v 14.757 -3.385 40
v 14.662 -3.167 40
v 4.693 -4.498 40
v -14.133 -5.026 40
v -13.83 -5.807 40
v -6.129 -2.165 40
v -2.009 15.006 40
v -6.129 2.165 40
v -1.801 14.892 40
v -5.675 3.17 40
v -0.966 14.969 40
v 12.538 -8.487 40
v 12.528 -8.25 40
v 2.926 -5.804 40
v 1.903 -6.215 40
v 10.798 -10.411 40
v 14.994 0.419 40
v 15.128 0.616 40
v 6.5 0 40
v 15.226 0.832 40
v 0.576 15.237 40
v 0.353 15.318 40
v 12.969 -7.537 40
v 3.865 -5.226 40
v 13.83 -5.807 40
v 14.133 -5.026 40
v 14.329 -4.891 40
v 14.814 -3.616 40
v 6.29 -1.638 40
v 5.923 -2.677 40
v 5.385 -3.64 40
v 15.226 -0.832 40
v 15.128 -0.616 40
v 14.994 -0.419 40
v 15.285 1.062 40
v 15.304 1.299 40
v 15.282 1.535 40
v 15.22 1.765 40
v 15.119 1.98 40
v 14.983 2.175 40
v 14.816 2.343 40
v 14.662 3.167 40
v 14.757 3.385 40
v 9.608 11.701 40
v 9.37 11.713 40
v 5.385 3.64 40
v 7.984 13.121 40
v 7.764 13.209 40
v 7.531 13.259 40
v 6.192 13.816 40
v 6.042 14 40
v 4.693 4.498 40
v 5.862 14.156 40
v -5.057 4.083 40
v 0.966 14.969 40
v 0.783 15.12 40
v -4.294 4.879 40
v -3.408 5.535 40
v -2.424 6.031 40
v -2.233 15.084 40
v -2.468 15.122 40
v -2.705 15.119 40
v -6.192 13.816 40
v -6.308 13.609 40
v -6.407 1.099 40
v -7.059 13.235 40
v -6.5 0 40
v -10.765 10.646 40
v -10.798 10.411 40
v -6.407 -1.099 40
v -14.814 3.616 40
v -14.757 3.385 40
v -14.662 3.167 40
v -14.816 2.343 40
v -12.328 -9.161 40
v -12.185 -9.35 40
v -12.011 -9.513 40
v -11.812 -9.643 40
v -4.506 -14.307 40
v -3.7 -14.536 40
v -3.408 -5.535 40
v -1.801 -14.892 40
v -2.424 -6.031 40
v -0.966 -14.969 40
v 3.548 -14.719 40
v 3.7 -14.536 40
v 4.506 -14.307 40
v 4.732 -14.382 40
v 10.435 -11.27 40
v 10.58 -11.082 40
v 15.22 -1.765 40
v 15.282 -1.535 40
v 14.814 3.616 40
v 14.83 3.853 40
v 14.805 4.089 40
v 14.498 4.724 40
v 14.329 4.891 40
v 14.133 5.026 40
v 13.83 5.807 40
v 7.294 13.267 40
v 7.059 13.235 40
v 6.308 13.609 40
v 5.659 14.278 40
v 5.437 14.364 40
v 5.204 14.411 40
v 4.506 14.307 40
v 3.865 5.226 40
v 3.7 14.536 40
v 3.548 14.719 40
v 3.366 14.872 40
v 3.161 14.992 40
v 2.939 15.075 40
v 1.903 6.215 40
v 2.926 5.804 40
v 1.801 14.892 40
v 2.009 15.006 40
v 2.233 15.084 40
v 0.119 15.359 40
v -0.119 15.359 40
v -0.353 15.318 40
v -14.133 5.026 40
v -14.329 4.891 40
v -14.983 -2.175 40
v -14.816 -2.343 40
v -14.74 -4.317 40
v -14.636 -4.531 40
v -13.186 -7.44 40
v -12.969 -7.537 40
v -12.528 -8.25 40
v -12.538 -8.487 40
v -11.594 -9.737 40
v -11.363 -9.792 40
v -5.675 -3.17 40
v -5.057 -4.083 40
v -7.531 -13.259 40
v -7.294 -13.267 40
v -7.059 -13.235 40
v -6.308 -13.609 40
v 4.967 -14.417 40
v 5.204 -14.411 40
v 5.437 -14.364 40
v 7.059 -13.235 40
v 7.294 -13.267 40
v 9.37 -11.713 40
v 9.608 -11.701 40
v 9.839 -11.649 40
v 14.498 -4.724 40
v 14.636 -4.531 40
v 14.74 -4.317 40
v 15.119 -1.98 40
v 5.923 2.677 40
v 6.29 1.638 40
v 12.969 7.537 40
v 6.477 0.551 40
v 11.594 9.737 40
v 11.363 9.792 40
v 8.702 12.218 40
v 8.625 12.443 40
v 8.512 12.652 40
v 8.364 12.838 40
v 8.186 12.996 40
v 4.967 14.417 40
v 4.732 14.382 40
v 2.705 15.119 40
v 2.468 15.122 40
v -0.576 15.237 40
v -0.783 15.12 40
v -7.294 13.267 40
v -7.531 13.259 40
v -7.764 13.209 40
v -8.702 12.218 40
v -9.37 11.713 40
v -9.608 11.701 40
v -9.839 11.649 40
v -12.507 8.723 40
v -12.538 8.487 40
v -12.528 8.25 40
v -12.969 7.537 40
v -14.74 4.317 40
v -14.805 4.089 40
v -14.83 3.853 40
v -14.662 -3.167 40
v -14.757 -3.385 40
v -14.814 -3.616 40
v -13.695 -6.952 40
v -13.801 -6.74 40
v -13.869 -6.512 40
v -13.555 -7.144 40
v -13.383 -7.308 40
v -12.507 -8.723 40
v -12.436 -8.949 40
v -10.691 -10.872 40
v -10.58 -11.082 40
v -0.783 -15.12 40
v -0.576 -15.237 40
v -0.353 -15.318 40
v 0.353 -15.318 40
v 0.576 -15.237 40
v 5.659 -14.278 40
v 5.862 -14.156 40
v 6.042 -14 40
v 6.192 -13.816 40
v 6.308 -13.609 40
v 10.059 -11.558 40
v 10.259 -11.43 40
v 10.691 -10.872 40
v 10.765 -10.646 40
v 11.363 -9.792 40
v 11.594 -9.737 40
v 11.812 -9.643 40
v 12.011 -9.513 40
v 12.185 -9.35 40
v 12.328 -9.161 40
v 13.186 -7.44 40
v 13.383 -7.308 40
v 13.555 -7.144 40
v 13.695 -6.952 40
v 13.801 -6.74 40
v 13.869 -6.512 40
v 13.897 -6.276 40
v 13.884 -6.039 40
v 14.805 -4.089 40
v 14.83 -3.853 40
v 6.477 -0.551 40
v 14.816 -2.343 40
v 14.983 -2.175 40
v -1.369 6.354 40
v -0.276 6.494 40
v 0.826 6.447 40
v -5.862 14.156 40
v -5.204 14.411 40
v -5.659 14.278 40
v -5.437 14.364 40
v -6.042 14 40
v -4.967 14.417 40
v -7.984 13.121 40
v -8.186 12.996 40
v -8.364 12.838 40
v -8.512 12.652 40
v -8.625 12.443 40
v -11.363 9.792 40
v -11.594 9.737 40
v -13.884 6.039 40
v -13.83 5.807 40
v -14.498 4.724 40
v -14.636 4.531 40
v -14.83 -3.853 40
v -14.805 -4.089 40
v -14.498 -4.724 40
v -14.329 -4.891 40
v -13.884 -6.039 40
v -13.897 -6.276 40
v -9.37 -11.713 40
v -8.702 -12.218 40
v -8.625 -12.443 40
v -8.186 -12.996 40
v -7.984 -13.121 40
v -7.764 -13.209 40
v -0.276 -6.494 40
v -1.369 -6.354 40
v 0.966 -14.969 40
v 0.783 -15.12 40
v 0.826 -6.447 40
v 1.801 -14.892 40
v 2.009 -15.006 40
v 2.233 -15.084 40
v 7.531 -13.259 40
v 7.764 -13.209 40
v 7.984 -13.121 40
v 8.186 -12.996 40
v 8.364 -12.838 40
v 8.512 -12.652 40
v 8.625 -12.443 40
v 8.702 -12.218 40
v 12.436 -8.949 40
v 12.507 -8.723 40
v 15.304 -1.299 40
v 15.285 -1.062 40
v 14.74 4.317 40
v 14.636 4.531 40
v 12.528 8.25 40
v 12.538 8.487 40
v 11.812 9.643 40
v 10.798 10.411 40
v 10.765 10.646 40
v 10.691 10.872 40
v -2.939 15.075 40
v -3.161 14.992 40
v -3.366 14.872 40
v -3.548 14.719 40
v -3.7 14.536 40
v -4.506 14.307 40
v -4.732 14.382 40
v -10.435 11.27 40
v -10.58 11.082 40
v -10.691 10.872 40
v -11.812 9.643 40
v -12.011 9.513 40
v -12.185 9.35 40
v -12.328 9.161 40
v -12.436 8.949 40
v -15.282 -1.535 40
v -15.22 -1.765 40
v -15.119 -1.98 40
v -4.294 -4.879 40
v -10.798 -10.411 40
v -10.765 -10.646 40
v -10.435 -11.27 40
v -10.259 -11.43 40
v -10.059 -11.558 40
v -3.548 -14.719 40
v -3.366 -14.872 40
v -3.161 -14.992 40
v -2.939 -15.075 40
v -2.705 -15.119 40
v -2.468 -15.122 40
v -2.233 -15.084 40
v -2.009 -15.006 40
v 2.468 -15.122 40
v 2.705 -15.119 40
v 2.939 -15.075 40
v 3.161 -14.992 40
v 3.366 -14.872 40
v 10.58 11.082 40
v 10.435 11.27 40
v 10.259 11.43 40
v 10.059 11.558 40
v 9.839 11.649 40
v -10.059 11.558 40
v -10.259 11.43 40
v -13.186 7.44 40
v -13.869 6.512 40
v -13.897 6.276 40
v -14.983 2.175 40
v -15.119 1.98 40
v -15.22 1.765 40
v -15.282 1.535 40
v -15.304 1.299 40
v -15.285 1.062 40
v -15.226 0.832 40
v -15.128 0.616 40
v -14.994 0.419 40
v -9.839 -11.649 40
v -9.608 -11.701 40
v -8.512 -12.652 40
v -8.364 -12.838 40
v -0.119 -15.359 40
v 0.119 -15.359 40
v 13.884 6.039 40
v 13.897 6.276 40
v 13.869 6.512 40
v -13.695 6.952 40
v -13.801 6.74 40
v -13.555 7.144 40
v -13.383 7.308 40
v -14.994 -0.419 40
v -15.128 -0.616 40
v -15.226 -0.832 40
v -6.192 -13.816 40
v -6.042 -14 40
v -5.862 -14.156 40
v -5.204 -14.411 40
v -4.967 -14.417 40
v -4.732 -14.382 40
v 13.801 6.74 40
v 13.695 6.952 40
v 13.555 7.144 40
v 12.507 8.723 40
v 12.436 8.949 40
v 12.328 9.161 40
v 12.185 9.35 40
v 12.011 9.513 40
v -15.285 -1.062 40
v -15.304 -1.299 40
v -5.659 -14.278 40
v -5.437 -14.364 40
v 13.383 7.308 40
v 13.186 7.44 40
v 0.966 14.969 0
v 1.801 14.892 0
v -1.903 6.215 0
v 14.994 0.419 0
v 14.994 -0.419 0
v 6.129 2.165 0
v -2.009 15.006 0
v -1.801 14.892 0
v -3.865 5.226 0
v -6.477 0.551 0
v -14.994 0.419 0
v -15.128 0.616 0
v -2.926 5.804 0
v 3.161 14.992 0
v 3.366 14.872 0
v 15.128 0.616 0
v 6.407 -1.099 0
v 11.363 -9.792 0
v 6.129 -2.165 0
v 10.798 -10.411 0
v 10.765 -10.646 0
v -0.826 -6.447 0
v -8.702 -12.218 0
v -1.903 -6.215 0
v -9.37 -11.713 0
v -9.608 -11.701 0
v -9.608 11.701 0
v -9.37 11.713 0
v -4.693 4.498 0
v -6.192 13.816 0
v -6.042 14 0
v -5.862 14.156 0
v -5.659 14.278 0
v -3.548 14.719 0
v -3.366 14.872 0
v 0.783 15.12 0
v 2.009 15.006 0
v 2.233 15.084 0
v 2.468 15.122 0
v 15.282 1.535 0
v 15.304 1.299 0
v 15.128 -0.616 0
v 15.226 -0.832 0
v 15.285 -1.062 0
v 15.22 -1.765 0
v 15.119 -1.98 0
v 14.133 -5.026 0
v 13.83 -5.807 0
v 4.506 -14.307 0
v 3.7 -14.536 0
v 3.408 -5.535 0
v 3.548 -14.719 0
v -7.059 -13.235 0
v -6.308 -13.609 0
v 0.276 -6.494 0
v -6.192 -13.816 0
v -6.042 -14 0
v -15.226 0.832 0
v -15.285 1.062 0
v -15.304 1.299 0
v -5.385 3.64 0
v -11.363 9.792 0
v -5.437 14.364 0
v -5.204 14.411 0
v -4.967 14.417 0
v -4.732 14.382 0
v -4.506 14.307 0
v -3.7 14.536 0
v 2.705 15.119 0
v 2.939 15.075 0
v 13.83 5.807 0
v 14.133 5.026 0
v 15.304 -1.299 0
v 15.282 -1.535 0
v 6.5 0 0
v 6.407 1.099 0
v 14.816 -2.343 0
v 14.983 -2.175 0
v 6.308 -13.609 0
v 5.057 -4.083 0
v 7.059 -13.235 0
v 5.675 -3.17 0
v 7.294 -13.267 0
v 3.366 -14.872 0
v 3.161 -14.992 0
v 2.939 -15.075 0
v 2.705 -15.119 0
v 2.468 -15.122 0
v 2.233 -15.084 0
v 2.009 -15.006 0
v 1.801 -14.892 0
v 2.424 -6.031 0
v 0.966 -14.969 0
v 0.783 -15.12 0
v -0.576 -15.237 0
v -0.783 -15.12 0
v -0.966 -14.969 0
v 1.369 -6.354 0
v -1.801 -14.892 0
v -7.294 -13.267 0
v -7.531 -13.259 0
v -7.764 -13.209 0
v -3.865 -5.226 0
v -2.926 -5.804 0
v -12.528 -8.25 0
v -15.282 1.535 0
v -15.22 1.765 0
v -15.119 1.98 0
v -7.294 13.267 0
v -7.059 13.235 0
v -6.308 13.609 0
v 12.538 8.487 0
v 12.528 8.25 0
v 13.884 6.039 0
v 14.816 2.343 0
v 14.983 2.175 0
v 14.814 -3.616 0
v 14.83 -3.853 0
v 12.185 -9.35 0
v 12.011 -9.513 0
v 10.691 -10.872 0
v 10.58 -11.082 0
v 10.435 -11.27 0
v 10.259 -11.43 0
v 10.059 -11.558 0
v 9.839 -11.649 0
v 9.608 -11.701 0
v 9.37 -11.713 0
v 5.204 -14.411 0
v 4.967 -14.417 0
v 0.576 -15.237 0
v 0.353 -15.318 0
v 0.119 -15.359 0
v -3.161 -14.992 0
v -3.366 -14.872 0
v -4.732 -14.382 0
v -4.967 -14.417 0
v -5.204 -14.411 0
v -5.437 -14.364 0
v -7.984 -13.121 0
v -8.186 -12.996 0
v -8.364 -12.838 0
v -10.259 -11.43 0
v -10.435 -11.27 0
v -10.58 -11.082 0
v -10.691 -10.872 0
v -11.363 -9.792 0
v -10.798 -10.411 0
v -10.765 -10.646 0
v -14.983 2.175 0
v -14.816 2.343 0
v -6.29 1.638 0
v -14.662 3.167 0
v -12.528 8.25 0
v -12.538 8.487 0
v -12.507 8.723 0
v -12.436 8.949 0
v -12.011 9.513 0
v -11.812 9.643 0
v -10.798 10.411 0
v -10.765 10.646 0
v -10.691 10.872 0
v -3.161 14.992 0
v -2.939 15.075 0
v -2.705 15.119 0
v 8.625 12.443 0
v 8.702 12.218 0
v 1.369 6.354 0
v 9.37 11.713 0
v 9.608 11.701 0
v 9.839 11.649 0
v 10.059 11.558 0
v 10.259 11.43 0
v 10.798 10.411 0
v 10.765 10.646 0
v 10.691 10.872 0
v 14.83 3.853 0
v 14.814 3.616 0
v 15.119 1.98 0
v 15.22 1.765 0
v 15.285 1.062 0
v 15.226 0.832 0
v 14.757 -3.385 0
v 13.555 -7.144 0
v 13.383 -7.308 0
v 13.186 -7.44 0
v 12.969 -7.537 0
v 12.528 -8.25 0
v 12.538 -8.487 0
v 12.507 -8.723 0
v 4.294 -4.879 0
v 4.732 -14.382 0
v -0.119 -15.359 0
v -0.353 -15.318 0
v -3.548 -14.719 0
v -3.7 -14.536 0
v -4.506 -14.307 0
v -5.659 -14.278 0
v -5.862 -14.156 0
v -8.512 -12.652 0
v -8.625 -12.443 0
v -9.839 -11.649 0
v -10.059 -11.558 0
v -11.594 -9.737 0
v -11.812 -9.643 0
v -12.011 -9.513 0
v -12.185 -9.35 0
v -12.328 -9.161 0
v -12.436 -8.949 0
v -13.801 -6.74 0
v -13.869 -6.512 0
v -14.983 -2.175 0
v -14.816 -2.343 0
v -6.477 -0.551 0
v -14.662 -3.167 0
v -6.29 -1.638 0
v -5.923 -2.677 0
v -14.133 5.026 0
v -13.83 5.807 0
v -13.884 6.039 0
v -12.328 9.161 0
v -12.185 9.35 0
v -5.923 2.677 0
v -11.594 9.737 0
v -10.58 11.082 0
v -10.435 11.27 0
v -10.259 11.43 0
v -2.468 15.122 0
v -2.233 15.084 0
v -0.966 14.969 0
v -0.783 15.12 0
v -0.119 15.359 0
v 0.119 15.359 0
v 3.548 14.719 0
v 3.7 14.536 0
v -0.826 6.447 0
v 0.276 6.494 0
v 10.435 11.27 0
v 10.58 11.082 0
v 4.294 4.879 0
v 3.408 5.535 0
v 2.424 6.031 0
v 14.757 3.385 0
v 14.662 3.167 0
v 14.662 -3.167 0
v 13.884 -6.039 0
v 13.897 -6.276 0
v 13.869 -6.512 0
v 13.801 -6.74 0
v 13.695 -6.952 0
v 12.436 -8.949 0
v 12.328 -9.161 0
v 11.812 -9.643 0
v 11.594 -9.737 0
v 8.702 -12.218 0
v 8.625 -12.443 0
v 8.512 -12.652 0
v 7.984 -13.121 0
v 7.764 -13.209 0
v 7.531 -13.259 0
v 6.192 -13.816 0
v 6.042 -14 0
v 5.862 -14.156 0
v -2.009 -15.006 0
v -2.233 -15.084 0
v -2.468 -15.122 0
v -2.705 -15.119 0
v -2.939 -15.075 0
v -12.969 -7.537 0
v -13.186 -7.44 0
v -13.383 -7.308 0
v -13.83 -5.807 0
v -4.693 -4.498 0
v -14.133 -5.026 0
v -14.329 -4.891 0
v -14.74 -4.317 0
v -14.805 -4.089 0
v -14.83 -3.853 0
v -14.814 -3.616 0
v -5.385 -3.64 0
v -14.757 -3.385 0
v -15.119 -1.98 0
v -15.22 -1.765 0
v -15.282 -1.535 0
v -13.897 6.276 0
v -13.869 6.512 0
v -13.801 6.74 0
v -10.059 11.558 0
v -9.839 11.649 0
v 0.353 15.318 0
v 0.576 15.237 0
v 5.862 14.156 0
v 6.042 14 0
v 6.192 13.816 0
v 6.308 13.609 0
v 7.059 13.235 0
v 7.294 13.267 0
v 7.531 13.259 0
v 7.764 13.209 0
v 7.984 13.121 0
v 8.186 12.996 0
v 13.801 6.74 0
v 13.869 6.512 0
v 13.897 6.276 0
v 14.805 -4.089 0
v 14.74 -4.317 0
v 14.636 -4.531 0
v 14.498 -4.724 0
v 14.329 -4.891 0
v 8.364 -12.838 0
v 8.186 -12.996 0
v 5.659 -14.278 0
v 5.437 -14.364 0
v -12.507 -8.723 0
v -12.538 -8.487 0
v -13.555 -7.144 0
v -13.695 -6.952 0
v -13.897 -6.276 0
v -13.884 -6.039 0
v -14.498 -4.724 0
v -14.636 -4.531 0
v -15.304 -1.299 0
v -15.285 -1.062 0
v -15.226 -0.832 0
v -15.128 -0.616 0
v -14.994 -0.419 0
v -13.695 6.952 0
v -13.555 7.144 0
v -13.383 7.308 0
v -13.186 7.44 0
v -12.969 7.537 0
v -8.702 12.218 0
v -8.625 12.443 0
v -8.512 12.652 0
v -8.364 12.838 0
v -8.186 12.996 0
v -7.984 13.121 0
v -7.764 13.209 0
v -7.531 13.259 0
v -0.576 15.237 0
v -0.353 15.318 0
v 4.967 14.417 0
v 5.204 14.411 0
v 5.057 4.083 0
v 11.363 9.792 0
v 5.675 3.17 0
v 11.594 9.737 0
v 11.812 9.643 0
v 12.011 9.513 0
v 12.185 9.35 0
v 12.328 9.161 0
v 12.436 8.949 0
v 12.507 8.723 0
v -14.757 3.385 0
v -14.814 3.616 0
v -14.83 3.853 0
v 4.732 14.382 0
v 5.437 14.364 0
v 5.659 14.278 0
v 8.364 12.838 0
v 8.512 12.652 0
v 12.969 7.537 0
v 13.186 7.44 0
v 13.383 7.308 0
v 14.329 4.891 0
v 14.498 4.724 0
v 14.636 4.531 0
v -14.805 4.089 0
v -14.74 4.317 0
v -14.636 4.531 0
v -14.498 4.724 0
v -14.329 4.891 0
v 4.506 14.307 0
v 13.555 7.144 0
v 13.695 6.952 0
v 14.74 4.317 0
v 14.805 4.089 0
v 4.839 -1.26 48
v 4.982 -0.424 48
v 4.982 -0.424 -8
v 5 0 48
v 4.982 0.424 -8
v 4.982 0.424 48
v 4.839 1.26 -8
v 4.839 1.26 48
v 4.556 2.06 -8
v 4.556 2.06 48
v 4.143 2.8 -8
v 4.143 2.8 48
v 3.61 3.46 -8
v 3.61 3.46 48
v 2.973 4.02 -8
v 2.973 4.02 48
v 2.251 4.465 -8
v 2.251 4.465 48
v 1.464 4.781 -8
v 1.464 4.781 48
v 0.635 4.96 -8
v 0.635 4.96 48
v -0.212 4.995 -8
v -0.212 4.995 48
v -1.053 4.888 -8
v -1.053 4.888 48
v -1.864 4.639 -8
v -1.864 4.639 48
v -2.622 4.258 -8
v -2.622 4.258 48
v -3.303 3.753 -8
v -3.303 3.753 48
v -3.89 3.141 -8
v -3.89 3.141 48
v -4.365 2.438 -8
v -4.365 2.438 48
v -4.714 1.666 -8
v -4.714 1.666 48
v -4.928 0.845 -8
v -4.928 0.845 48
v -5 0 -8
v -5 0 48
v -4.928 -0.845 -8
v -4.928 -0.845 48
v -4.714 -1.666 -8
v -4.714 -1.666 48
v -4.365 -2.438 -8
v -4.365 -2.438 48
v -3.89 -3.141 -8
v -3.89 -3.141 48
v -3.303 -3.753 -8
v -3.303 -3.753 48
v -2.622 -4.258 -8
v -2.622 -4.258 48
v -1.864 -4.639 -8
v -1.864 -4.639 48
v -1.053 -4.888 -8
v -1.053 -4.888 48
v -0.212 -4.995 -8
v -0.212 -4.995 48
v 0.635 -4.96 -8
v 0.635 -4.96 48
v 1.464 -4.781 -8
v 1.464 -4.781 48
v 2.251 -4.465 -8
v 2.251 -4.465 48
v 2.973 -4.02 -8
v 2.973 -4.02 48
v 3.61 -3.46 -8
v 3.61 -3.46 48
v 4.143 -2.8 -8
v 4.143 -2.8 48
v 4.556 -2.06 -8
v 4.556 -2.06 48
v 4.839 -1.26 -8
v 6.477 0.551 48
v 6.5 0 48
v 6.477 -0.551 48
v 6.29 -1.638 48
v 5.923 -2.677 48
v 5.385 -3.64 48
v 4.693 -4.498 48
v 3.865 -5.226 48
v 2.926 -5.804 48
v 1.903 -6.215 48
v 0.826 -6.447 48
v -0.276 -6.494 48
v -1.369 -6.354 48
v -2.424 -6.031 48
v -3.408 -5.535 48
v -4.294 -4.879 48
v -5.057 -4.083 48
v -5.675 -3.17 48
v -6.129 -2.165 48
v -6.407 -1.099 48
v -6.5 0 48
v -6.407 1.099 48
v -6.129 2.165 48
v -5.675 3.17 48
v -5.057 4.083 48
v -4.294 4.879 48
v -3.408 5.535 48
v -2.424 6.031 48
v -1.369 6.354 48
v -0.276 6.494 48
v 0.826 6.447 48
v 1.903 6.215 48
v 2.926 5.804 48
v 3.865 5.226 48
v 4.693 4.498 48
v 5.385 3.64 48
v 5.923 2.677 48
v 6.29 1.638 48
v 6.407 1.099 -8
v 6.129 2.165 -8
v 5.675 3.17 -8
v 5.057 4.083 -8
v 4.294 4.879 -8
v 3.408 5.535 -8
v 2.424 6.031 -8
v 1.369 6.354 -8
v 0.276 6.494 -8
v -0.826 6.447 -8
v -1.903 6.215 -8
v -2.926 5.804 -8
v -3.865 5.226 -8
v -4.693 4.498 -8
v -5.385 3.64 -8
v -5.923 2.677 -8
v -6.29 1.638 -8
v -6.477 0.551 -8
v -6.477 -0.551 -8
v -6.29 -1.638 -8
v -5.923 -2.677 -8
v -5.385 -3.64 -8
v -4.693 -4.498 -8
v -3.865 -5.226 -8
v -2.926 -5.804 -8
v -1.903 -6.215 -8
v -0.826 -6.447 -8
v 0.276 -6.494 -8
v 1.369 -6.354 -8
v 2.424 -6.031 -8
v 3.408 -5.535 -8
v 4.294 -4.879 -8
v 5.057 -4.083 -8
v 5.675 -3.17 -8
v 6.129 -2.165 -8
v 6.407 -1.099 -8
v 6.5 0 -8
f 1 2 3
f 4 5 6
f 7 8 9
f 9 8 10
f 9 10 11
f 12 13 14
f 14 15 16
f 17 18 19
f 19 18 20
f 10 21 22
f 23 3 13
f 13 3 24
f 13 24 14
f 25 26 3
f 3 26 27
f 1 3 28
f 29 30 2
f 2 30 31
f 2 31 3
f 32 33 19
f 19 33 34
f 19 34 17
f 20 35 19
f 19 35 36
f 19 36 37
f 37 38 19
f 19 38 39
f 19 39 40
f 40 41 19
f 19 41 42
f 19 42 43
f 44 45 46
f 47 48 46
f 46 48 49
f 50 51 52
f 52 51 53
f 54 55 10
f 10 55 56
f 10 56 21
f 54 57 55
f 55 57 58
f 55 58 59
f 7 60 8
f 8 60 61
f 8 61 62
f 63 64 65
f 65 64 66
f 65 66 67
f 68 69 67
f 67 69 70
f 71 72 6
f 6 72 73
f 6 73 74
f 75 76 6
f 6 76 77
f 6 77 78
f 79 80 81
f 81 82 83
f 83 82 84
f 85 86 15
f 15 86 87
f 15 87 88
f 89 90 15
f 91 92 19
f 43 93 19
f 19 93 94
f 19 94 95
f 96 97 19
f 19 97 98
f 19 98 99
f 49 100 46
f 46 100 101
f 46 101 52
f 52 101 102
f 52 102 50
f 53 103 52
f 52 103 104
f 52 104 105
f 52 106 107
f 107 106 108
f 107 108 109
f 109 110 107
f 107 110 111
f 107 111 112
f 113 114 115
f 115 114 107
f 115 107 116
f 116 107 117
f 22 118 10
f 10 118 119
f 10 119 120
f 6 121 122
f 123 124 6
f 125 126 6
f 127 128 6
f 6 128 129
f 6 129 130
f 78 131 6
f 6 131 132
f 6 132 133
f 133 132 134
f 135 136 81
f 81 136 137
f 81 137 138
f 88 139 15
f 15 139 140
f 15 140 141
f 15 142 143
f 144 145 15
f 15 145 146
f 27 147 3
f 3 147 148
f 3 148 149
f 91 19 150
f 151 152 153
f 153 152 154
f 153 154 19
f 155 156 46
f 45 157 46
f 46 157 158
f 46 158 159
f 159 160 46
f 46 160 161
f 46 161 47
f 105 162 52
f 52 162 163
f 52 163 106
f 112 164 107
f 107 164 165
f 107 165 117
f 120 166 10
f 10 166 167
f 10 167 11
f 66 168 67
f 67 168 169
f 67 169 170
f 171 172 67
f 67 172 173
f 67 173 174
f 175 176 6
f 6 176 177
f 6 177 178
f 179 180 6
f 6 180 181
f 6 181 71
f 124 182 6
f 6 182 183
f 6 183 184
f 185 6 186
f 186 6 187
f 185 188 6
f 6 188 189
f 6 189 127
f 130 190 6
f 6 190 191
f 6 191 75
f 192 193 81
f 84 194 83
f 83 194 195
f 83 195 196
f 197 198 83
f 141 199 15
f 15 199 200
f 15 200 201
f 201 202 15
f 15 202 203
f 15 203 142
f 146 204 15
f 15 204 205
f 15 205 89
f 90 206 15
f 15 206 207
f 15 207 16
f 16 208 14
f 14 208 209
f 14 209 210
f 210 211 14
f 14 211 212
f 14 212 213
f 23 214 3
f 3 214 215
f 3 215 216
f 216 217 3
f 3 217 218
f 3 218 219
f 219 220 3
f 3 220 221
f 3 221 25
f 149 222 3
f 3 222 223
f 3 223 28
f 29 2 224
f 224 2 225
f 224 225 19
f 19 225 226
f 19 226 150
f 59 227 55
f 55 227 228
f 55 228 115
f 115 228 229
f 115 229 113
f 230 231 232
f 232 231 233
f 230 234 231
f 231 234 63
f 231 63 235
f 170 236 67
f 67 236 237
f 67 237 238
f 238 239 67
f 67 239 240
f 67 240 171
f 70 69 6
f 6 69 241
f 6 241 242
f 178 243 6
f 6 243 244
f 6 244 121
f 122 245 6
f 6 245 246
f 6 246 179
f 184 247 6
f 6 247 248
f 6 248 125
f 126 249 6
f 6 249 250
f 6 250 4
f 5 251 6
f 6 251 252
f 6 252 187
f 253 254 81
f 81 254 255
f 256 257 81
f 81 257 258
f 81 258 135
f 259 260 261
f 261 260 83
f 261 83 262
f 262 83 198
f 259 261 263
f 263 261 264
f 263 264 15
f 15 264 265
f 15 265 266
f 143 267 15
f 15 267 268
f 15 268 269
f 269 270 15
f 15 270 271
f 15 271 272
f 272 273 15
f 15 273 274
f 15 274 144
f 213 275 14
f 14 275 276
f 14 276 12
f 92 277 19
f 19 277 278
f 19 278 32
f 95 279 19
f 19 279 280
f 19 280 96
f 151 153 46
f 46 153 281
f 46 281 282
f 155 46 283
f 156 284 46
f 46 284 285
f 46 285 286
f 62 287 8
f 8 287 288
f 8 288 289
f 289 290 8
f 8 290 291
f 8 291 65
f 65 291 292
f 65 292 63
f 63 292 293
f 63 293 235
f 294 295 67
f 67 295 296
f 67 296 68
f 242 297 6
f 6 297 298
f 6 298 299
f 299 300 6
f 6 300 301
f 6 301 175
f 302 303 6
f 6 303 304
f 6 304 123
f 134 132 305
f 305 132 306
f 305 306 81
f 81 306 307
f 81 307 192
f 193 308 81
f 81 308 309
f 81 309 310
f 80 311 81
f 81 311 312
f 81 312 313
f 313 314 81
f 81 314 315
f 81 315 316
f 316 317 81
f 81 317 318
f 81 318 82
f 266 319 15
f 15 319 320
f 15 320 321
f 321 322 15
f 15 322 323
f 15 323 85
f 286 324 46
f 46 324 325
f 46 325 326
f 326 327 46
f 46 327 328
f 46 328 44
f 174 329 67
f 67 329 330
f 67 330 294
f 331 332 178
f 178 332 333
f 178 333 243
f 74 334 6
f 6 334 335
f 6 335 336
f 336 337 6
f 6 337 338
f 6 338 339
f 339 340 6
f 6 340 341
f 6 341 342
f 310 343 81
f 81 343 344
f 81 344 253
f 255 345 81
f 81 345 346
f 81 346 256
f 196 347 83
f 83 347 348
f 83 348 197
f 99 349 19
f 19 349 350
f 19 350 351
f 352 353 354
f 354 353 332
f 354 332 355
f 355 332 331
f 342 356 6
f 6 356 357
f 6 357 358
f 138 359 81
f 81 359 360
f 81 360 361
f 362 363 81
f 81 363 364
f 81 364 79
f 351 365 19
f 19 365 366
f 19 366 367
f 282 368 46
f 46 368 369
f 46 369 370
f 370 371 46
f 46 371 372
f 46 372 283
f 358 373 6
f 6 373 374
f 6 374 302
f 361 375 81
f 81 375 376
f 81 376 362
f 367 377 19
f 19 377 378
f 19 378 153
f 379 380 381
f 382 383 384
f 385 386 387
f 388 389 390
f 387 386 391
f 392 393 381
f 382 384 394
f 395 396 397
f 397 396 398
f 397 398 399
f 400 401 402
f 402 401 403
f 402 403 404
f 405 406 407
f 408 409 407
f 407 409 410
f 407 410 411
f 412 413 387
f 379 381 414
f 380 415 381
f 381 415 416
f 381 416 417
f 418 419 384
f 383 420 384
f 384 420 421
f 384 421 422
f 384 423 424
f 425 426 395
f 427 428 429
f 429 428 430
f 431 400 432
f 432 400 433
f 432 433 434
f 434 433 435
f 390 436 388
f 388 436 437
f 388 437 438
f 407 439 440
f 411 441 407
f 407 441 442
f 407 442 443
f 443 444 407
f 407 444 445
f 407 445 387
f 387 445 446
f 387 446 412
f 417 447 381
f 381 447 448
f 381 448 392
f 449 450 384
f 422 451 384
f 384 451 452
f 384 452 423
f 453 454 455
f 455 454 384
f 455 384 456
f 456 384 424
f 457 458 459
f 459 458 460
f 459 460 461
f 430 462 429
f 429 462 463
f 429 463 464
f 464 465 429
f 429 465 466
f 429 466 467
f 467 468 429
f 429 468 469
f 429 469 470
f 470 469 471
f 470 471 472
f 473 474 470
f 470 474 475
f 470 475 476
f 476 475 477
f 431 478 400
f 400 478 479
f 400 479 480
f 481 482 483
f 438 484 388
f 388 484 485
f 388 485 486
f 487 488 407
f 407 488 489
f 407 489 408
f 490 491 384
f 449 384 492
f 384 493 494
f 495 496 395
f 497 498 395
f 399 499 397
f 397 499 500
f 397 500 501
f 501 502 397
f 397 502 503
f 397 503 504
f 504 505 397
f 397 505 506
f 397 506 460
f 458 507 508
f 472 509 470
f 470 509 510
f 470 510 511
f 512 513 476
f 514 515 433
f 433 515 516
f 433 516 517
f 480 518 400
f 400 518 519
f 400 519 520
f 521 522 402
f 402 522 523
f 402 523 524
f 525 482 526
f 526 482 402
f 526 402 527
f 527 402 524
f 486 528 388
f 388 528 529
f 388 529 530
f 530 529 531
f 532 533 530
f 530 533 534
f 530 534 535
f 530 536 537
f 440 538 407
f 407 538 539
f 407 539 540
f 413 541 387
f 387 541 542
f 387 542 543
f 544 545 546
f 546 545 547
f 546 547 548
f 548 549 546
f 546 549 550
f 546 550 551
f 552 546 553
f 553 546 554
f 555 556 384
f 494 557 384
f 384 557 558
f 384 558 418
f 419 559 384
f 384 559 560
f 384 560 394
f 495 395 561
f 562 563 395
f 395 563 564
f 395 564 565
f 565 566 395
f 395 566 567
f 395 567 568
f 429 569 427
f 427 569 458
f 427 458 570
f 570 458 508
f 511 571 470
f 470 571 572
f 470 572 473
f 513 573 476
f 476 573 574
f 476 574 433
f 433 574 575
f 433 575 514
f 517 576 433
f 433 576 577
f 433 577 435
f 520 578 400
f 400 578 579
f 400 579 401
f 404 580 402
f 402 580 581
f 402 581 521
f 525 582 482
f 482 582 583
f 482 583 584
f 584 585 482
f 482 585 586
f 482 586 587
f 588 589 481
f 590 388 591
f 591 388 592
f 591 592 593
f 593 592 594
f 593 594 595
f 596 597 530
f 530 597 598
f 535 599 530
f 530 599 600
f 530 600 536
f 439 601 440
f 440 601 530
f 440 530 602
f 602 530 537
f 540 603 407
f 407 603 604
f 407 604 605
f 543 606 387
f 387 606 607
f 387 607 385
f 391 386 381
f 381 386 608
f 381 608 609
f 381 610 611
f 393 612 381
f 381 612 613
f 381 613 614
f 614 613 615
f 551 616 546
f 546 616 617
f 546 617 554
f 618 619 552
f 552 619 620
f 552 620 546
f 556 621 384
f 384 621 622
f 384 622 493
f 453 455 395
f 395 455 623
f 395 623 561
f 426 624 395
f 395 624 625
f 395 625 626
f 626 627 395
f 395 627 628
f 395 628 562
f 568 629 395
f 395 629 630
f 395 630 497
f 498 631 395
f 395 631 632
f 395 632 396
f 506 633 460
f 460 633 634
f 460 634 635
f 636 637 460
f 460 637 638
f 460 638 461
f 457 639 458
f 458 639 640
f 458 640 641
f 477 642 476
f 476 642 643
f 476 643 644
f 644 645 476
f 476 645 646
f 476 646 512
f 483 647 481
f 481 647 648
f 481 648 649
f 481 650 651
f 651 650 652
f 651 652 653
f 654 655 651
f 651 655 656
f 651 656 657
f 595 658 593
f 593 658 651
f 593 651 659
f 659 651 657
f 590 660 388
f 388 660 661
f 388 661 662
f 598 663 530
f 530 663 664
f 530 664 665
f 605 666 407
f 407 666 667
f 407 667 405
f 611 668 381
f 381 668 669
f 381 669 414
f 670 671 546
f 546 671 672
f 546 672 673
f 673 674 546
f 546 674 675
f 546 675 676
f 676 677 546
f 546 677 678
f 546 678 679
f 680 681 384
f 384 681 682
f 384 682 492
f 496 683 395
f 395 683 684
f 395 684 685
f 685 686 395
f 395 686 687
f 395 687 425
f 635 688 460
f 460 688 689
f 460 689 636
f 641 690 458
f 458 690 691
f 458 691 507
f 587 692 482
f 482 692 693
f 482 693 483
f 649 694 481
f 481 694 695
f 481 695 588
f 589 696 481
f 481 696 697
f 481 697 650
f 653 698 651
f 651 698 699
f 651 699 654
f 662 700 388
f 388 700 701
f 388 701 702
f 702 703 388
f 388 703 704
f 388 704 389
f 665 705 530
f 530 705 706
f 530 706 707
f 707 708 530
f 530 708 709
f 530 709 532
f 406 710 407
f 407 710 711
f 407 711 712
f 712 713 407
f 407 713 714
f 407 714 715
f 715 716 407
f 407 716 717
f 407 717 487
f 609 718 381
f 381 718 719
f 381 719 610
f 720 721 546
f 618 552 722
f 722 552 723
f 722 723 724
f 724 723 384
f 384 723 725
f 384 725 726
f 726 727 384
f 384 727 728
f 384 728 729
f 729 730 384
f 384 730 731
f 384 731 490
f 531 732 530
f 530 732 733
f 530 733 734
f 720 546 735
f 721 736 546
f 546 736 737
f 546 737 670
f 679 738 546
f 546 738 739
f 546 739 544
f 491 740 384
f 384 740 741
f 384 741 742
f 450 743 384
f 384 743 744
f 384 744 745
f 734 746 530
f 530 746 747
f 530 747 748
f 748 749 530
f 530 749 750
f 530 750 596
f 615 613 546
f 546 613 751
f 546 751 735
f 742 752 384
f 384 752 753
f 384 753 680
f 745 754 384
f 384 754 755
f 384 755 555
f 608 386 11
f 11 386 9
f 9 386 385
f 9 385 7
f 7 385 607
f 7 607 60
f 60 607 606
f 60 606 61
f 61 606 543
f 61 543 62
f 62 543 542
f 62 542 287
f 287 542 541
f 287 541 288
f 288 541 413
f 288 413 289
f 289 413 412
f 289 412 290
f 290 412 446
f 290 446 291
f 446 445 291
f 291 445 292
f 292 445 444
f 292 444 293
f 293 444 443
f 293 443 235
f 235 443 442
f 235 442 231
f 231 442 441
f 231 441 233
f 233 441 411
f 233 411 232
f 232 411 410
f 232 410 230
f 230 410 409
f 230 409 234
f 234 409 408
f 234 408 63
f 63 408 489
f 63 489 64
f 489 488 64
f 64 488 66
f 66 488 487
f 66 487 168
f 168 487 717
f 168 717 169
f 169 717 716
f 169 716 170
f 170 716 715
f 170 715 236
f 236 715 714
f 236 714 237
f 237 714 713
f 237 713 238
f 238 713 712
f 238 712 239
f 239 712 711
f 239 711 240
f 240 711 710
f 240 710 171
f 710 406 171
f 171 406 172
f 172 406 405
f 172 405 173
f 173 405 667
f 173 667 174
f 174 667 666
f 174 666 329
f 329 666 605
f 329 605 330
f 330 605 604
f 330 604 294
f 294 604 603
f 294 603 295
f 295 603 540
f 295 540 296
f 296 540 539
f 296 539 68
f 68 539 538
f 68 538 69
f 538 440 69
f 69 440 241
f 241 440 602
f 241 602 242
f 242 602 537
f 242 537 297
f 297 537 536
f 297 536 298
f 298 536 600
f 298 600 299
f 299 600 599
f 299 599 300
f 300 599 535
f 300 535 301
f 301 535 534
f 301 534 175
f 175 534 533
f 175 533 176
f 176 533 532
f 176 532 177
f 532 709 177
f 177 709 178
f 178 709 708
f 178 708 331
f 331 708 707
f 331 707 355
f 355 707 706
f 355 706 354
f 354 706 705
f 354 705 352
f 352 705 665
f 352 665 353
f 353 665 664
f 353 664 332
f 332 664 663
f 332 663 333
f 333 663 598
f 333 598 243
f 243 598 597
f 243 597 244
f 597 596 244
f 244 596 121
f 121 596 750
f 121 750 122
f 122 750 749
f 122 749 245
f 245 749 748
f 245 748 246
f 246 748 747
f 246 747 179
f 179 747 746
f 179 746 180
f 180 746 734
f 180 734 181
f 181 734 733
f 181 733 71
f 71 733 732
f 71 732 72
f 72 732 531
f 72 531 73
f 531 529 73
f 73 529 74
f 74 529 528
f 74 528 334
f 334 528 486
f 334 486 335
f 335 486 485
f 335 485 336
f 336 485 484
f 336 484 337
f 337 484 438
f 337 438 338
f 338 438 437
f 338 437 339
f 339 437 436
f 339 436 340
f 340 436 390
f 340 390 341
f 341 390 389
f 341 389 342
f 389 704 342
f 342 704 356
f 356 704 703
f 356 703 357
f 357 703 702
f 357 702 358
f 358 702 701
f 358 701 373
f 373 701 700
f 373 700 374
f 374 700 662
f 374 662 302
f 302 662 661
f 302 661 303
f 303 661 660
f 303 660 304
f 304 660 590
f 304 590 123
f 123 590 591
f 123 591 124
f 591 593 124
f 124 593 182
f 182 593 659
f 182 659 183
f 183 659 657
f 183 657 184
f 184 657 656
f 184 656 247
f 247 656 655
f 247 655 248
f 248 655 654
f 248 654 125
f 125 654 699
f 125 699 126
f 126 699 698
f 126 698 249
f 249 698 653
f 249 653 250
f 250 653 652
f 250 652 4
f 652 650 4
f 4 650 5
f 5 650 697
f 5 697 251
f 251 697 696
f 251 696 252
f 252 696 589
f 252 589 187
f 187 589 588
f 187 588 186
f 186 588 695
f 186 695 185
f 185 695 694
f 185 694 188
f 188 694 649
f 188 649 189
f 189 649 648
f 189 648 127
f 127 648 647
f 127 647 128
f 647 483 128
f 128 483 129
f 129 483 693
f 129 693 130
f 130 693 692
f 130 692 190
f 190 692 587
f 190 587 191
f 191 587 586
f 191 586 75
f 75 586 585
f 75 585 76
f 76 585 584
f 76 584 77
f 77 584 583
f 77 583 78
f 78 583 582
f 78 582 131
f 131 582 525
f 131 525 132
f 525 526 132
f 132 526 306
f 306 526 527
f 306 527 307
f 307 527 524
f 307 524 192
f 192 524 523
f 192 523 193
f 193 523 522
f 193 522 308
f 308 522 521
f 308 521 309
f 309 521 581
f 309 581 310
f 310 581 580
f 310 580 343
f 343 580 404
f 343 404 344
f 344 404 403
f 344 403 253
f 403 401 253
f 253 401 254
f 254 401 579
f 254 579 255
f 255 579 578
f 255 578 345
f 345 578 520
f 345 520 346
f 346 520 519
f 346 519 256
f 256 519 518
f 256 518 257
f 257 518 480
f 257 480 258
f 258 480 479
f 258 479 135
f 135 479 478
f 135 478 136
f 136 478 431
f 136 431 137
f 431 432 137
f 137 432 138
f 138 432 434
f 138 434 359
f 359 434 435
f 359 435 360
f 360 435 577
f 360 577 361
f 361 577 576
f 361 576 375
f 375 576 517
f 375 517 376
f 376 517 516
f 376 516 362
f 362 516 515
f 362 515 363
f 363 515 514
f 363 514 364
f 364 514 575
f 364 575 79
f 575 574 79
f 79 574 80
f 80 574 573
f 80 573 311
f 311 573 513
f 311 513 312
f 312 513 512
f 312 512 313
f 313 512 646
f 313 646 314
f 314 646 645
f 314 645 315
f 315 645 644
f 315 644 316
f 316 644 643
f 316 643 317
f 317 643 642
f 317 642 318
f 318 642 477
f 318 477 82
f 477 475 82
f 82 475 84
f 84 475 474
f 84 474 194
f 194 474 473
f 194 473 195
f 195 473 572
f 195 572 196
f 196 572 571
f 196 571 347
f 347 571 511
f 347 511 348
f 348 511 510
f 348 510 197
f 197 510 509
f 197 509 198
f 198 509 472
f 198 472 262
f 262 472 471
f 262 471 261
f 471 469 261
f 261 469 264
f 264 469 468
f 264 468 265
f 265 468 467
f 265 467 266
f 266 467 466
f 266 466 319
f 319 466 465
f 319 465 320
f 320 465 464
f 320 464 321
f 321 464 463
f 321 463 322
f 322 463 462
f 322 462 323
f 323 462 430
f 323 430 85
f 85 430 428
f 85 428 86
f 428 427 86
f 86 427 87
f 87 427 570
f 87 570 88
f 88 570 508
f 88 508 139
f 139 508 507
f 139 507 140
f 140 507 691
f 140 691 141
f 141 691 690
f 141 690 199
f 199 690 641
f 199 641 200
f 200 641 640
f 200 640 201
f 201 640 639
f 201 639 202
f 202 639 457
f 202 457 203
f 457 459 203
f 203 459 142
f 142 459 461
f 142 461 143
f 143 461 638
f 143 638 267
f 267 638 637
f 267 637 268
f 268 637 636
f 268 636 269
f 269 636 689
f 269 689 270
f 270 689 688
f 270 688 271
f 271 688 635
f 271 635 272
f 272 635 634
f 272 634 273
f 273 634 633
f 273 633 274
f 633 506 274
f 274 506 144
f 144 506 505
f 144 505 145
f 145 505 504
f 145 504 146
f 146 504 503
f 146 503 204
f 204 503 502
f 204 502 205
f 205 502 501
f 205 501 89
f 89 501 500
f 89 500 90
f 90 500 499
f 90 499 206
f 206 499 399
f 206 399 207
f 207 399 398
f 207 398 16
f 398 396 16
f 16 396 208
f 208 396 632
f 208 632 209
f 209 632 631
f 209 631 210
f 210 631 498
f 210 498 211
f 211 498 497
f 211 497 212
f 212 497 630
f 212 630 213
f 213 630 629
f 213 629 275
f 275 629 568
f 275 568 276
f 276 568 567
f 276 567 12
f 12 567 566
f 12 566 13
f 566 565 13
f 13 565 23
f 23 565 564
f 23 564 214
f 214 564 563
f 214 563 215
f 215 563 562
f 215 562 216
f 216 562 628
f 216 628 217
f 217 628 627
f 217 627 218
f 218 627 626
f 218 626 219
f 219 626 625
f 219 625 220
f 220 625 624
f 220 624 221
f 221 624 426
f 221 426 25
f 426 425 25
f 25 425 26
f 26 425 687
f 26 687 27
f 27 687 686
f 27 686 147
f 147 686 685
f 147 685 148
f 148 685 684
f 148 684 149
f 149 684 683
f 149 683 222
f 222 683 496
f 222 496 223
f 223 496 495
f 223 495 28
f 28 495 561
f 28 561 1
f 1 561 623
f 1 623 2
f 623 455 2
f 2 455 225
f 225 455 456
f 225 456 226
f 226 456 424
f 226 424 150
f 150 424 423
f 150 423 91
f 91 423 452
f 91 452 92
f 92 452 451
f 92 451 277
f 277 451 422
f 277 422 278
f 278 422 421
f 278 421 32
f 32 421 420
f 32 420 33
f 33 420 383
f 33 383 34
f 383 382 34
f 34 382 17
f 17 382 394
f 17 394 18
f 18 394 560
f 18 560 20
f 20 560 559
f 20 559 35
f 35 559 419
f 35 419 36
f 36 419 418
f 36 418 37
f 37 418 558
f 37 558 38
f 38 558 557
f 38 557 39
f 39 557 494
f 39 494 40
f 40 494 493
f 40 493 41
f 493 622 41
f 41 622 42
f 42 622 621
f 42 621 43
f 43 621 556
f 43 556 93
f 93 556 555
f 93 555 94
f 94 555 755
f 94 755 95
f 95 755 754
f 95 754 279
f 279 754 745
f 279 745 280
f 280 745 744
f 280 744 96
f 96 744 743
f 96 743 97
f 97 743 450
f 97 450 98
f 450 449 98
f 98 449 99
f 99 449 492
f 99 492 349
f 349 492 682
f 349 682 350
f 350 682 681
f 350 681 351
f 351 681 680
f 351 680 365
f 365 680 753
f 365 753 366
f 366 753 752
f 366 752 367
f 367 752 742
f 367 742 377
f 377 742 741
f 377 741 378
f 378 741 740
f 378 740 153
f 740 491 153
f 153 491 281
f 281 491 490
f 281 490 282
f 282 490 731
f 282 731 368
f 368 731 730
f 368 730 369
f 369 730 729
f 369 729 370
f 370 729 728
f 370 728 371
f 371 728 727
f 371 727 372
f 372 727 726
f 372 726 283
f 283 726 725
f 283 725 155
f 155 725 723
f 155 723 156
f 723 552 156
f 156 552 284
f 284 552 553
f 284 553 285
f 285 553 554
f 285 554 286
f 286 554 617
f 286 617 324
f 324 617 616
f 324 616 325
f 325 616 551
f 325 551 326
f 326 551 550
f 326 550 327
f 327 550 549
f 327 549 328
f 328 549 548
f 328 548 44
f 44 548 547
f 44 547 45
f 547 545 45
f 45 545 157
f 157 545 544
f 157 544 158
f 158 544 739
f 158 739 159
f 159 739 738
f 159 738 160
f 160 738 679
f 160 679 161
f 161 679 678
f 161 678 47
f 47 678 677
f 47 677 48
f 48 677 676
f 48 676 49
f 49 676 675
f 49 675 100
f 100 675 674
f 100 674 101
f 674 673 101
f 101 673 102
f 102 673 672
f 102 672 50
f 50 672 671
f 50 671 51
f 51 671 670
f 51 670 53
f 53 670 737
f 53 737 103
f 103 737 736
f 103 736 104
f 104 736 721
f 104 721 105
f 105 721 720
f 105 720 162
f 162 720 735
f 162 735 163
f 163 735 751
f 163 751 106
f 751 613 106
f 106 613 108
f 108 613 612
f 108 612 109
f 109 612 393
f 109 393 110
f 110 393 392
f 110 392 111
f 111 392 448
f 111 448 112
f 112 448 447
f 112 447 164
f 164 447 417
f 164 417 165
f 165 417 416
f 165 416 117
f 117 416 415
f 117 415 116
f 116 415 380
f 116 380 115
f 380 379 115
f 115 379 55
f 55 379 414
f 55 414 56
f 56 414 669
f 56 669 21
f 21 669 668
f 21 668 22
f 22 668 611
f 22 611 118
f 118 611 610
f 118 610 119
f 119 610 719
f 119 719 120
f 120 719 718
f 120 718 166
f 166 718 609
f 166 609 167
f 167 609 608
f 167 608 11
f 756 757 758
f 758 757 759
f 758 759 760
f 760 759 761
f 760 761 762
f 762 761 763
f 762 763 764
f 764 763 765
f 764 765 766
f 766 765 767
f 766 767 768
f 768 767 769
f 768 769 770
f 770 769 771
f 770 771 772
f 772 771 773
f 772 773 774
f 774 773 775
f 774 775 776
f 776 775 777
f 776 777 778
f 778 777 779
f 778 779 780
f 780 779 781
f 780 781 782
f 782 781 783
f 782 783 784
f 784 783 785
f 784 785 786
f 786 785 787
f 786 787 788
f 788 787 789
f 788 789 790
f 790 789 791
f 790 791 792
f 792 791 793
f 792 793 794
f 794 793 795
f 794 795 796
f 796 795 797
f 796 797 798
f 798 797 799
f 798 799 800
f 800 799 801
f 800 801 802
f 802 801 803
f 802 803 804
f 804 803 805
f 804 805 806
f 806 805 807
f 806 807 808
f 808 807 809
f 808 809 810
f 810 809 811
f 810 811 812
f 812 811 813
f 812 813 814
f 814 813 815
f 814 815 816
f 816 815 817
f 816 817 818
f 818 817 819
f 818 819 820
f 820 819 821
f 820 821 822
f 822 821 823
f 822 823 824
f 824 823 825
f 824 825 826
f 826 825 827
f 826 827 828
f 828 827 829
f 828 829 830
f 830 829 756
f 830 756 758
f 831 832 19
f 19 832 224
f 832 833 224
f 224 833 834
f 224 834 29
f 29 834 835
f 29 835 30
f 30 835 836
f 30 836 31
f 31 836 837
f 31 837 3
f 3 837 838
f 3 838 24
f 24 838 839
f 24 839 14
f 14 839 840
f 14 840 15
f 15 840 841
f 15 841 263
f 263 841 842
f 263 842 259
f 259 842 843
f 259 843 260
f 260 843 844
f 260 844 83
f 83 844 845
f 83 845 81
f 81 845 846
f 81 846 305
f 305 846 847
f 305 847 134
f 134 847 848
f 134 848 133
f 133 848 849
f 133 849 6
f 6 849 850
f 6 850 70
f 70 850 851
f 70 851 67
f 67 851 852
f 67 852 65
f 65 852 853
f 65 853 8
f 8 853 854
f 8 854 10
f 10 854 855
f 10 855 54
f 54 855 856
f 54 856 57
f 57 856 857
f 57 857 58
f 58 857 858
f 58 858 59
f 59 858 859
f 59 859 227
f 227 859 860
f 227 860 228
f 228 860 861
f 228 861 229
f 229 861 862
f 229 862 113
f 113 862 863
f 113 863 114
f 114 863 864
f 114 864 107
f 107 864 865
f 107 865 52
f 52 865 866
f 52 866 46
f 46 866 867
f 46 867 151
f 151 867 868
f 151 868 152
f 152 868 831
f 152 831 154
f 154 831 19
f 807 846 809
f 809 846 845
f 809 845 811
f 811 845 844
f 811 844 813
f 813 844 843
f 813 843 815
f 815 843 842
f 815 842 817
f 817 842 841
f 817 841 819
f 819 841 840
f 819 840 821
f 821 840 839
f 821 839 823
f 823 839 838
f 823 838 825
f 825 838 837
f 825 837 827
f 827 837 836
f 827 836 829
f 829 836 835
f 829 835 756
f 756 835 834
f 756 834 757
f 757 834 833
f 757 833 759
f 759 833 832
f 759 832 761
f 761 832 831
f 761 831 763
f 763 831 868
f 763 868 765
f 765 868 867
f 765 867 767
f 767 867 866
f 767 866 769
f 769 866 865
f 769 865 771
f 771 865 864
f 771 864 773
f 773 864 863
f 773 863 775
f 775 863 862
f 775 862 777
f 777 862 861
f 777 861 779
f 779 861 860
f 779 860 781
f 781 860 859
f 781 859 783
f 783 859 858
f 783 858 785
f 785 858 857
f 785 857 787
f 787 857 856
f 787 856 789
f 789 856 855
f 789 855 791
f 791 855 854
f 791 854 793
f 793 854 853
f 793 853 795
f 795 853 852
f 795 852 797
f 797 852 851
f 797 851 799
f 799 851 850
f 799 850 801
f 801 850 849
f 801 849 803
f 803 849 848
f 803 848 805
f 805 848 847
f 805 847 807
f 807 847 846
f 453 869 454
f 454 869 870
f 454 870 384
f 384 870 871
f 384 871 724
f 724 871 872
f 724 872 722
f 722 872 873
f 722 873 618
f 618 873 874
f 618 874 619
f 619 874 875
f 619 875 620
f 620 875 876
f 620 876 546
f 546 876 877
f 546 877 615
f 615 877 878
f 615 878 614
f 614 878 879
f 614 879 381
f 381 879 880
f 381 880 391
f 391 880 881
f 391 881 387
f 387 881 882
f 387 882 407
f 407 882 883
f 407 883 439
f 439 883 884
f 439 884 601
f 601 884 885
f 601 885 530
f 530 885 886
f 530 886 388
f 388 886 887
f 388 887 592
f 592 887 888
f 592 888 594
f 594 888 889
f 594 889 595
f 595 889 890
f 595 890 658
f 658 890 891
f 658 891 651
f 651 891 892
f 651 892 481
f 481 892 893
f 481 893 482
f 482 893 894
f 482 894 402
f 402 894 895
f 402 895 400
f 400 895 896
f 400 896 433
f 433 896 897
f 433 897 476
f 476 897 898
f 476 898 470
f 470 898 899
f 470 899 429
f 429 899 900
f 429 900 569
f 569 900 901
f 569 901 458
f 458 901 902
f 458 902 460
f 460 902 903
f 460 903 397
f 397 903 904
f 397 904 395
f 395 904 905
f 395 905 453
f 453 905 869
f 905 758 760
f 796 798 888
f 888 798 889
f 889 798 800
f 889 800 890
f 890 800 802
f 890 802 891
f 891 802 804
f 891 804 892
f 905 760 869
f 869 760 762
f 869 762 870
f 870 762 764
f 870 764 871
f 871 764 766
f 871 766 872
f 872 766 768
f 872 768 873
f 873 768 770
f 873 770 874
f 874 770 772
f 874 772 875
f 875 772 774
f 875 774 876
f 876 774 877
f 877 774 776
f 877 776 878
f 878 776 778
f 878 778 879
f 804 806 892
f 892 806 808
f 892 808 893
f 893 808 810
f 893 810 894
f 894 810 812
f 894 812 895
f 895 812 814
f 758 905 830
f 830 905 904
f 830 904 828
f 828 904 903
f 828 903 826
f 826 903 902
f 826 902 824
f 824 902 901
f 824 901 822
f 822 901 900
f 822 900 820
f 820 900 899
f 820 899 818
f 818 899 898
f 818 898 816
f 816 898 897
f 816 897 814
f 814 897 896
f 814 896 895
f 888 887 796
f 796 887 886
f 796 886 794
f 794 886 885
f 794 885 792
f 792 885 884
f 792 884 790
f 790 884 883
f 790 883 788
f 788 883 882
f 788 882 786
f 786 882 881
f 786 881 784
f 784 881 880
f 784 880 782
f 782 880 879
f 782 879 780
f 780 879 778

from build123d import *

# Parameters (mm, degrees)
SKETCH1_R               = 5
BOSS_EXTRUDE1_DEPTH     = 40
SKETCH2_R               = 6.5
BOSS_EXTRUDE2_DEPTH     = 8
CUT_EXTRUDE1_DEPTH      = 53.671192562
CUT_EXTRUDE1_DEPTH_BACK = 53.671192562
SKETCH3_R               = 5
SKETCH4_R               = 5
CUT_EXTRUDE2_DEPTH      = 61.052098431


with BuildPart() as part:
    # Sketch1 → Boss-Extrude1 (new body)
    with BuildSketch(Plane.XY):
        with BuildLine():
            ThreePointArc((-3.700263623, 14.536438667), (-4.104944851, 14.427384648), (-4.506421309, 14.30706703))
            ThreePointArc((-4.506421309, 14.30706703), (-5.549993278, 14.326184075), (-6.308323199, 13.609006518))
            ThreePointArc((-6.308323199, 13.609006518), (-6.686075337, 13.42744937), (-7.05860759, 13.235409283))
            ThreePointArc((-7.05860759, 13.235409283), (-8.087923512, 13.062444978), (-8.701560395, 12.218135975))
            ThreePointArc((-8.701560395, 12.218135975), (-9.039519546, 11.970258409), (-9.370421456, 11.713035547))
            ThreePointArc((-9.370421456, 11.713035547), (-10.350429211, 11.353879984), (-10.798476387, 10.411191465))
            ThreePointArc((-10.798476387, 10.411191465), (-11.085133758, 10.105434655), (-11.363136858, 9.791788434))
            ThreePointArc((-11.363136858, 9.791788434), (-12.260463457, 9.258672225), (-12.527663218, 8.249706316))
            ThreePointArc((-12.527663218, 8.249706316), (-12.753257036, 7.896482443), (-12.968894263, 7.53709371))
            ThreePointArc((-12.968894263, 7.53709371), (-13.752982325, 6.848171487), (-13.830235503, 5.807287313))
            ThreePointArc((-13.830235503, 5.807287313), (-13.987083441, 5.418624993), (-14.133011528, 5.025732299))
            ThreePointArc((-14.133011528, 5.025732299), (-14.777159874, 4.204464483), (-14.661835705, 3.167108106))
            ThreePointArc((-14.661835705, 3.167108106), (-14.744596495, 2.756242767), (-14.815846036, 2.343225603))
            ThreePointArc((-14.815846036, 2.343225603), (-15.298118968, 1.417579484), (-14.994144677, 0.419076831))
            ThreePointArc((-14.994144677, 0.419076831), (-15, 0), (-14.994144677, -0.419076831))
            ThreePointArc((-14.994144677, -0.419076831), (-15.298118968, -1.417579484), (-14.815846036, -2.343225603))
            ThreePointArc((-14.815846036, -2.343225603), (-14.744596495, -2.756242767), (-14.661835705, -3.167108106))
            ThreePointArc((-14.661835705, -3.167108106), (-14.777159874, -4.204464483), (-14.133011528, -5.025732299))
            ThreePointArc((-14.133011528, -5.025732299), (-13.987083441, -5.418624993), (-13.830235503, -5.807287313))
            ThreePointArc((-13.830235503, -5.807287313), (-13.752982325, -6.848171487), (-12.968894263, -7.53709371))
            ThreePointArc((-12.968894263, -7.53709371), (-12.753257036, -7.896482443), (-12.527663218, -8.249706316))
            ThreePointArc((-12.527663218, -8.249706316), (-12.260463457, -9.258672225), (-11.363136858, -9.791788434))
            ThreePointArc((-11.363136858, -9.791788434), (-11.085133758, -10.105434655), (-10.798476387, -10.411191465))
            ThreePointArc((-10.798476387, -10.411191465), (-10.350429211, -11.353879984), (-9.370421456, -11.713035547))
            ThreePointArc((-9.370421456, -11.713035547), (-9.039519546, -11.970258409), (-8.701560395, -12.218135975))
            ThreePointArc((-8.701560395, -12.218135975), (-8.087923512, -13.062444978), (-7.05860759, -13.235409283))
            ThreePointArc((-7.05860759, -13.235409283), (-6.686075337, -13.42744937), (-6.308323199, -13.609006518))
            ThreePointArc((-6.308323199, -13.609006518), (-5.549993278, -14.326184075), (-4.506421309, -14.30706703))
            ThreePointArc((-4.506421309, -14.30706703), (-4.104944851, -14.427384648), (-3.700263623, -14.536438667))
            ThreePointArc((-3.700263623, -14.536438667), (-2.82306468, -15.102062156), (-1.800774254, -14.891514768))
            ThreePointArc((-1.800774254, -14.891514768), (-1.384025392, -14.936012644), (-0.966196008, -14.968849831))
            ThreePointArc((-0.966196008, -14.968849831), (0, -15.363657622), (0.966196008, -14.968849831))
            ThreePointArc((0.966196008, -14.968849831), (1.384025392, -14.936012644), (1.800774254, -14.891514768))
            ThreePointArc((1.800774254, -14.891514768), (2.82306468, -15.102062156), (3.700263623, -14.536438667))
            ThreePointArc((3.700263623, -14.536438667), (4.104944851, -14.427384648), (4.506421309, -14.30706703))
            ThreePointArc((4.506421309, -14.30706703), (5.549993278, -14.326184075), (6.308323199, -13.609006518))
            ThreePointArc((6.308323199, -13.609006518), (6.686075337, -13.42744937), (7.05860759, -13.235409283))
            ThreePointArc((7.05860759, -13.235409283), (8.087923512, -13.062444978), (8.701560395, -12.218135975))
            ThreePointArc((8.701560395, -12.218135975), (9.039519546, -11.970258409), (9.370421456, -11.713035547))
            ThreePointArc((9.370421456, -11.713035547), (10.350429211, -11.353879984), (10.798476387, -10.411191465))
            ThreePointArc((10.798476387, -10.411191465), (11.085133758, -10.105434655), (11.363136858, -9.791788434))
            ThreePointArc((11.363136858, -9.791788434), (12.260463457, -9.258672225), (12.527663218, -8.249706316))
            ThreePointArc((12.527663218, -8.249706316), (12.753257036, -7.896482443), (12.968894263, -7.53709371))
            ThreePointArc((12.968894263, -7.53709371), (13.752982325, -6.848171487), (13.830235503, -5.807287313))
            ThreePointArc((13.830235503, -5.807287313), (13.987083441, -5.418624993), (14.133011528, -5.025732299))
            ThreePointArc((14.133011528, -5.025732299), (14.777159874, -4.204464483), (14.661835705, -3.167108106))
            ThreePointArc((14.661835705, -3.167108106), (14.744596495, -2.756242767), (14.815846036, -2.343225603))
            ThreePointArc((14.815846036, -2.343225603), (15.298118968, -1.417579484), (14.994144677, -0.419076831))
            ThreePointArc((14.994144677, -0.419076831), (15, 0), (14.994144677, 0.419076831))
            ThreePointArc((14.994144677, 0.419076831), (15.298118968, 1.417579484), (14.815846036, 2.343225603))
            ThreePointArc((14.815846036, 2.343225603), (14.744596495, 2.756242767), (14.661835705, 3.167108106))
            ThreePointArc((14.661835705, 3.167108106), (14.777159874, 4.204464483), (14.133011528, 5.025732299))
            ThreePointArc((14.133011528, 5.025732299), (13.987083441, 5.418624993), (13.830235503, 5.807287313))
            ThreePointArc((13.830235503, 5.807287313), (13.752982325, 6.848171487), (12.968894263, 7.53709371))
            ThreePointArc((12.968894263, 7.53709371), (12.753257036, 7.896482443), (12.527663218, 8.249706316))
            ThreePointArc((12.527663218, 8.249706316), (12.260463457, 9.258672225), (11.363136858, 9.791788434))
            ThreePointArc((11.363136858, 9.791788434), (11.085133758, 10.105434655), (10.798476387, 10.411191465))
            ThreePointArc((10.798476387, 10.411191465), (10.350429211, 11.353879984), (9.370421456, 11.713035547))
            ThreePointArc((9.370421456, 11.713035547), (9.039519546, 11.970258409), (8.701560395, 12.218135975))
            ThreePointArc((8.701560395, 12.218135975), (8.087923512, 13.062444978), (7.05860759, 13.235409283))
            ThreePointArc((7.05860759, 13.235409283), (6.686075337, 13.42744937), (6.308323199, 13.609006518))
            ThreePointArc((6.308323199, 13.609006518), (5.549993278, 14.326184075), (4.506421309, 14.30706703))
            ThreePointArc((4.506421309, 14.30706703), (4.104944851, 14.427384648), (3.700263623, 14.536438667))
            ThreePointArc((3.700263623, 14.536438667), (2.82306468, 15.102062156), (1.800774254, 14.891514768))
            ThreePointArc((1.800774254, 14.891514768), (1.384025392, 14.936012644), (0.966196008, 14.968849831))
            ThreePointArc((0.966196008, 14.968849831), (0, 15.363657622), (-0.966196008, 14.968849831))
            ThreePointArc((-0.966196008, 14.968849831), (-1.384025392, 14.936012644), (-1.800774254, 14.891514768))
            ThreePointArc((-1.800774254, 14.891514768), (-2.82306468, 15.102062156), (-3.700263623, 14.536438667))
        make_face()
        Circle(SKETCH1_R, mode=Mode.SUBTRACT)
    extrude(amount=BOSS_EXTRUDE1_DEPTH)

    # Sketch2 → Boss-Extrude2 (add)
    with BuildSketch(Plane.XY.offset(40)):
        Circle(SKETCH2_R)
    boss_extrude2 = extrude(amount=BOSS_EXTRUDE2_DEPTH)

    # Sketch3 → Cut-Extrude1 (cut, two sides: drawn at the far end of the back side and taken through both)
    with BuildSketch(Plane.XY.offset(48).offset(-CUT_EXTRUDE1_DEPTH_BACK)):
        Circle(SKETCH3_R)
    extrude(amount=CUT_EXTRUDE1_DEPTH + CUT_EXTRUDE1_DEPTH_BACK, mode=Mode.SUBTRACT)

    # Mirror1: Boss-Extrude2 across plane
    add(boss_extrude2.mirror(Plane(origin=(0, 0, 20), x_dir=(1, 0, 0), z_dir=(0, 0, -1))))

    # Sketch4 → Cut-Extrude2 (cut, through all)
    with BuildSketch(Plane(origin=(0, 0, -8), x_dir=(-1, 0, 0), z_dir=(0, 0, -1))):
        Circle(SKETCH4_R)
    extrude(amount=-CUT_EXTRUDE2_DEPTH, mode=Mode.SUBTRACT)


solid = part.part
